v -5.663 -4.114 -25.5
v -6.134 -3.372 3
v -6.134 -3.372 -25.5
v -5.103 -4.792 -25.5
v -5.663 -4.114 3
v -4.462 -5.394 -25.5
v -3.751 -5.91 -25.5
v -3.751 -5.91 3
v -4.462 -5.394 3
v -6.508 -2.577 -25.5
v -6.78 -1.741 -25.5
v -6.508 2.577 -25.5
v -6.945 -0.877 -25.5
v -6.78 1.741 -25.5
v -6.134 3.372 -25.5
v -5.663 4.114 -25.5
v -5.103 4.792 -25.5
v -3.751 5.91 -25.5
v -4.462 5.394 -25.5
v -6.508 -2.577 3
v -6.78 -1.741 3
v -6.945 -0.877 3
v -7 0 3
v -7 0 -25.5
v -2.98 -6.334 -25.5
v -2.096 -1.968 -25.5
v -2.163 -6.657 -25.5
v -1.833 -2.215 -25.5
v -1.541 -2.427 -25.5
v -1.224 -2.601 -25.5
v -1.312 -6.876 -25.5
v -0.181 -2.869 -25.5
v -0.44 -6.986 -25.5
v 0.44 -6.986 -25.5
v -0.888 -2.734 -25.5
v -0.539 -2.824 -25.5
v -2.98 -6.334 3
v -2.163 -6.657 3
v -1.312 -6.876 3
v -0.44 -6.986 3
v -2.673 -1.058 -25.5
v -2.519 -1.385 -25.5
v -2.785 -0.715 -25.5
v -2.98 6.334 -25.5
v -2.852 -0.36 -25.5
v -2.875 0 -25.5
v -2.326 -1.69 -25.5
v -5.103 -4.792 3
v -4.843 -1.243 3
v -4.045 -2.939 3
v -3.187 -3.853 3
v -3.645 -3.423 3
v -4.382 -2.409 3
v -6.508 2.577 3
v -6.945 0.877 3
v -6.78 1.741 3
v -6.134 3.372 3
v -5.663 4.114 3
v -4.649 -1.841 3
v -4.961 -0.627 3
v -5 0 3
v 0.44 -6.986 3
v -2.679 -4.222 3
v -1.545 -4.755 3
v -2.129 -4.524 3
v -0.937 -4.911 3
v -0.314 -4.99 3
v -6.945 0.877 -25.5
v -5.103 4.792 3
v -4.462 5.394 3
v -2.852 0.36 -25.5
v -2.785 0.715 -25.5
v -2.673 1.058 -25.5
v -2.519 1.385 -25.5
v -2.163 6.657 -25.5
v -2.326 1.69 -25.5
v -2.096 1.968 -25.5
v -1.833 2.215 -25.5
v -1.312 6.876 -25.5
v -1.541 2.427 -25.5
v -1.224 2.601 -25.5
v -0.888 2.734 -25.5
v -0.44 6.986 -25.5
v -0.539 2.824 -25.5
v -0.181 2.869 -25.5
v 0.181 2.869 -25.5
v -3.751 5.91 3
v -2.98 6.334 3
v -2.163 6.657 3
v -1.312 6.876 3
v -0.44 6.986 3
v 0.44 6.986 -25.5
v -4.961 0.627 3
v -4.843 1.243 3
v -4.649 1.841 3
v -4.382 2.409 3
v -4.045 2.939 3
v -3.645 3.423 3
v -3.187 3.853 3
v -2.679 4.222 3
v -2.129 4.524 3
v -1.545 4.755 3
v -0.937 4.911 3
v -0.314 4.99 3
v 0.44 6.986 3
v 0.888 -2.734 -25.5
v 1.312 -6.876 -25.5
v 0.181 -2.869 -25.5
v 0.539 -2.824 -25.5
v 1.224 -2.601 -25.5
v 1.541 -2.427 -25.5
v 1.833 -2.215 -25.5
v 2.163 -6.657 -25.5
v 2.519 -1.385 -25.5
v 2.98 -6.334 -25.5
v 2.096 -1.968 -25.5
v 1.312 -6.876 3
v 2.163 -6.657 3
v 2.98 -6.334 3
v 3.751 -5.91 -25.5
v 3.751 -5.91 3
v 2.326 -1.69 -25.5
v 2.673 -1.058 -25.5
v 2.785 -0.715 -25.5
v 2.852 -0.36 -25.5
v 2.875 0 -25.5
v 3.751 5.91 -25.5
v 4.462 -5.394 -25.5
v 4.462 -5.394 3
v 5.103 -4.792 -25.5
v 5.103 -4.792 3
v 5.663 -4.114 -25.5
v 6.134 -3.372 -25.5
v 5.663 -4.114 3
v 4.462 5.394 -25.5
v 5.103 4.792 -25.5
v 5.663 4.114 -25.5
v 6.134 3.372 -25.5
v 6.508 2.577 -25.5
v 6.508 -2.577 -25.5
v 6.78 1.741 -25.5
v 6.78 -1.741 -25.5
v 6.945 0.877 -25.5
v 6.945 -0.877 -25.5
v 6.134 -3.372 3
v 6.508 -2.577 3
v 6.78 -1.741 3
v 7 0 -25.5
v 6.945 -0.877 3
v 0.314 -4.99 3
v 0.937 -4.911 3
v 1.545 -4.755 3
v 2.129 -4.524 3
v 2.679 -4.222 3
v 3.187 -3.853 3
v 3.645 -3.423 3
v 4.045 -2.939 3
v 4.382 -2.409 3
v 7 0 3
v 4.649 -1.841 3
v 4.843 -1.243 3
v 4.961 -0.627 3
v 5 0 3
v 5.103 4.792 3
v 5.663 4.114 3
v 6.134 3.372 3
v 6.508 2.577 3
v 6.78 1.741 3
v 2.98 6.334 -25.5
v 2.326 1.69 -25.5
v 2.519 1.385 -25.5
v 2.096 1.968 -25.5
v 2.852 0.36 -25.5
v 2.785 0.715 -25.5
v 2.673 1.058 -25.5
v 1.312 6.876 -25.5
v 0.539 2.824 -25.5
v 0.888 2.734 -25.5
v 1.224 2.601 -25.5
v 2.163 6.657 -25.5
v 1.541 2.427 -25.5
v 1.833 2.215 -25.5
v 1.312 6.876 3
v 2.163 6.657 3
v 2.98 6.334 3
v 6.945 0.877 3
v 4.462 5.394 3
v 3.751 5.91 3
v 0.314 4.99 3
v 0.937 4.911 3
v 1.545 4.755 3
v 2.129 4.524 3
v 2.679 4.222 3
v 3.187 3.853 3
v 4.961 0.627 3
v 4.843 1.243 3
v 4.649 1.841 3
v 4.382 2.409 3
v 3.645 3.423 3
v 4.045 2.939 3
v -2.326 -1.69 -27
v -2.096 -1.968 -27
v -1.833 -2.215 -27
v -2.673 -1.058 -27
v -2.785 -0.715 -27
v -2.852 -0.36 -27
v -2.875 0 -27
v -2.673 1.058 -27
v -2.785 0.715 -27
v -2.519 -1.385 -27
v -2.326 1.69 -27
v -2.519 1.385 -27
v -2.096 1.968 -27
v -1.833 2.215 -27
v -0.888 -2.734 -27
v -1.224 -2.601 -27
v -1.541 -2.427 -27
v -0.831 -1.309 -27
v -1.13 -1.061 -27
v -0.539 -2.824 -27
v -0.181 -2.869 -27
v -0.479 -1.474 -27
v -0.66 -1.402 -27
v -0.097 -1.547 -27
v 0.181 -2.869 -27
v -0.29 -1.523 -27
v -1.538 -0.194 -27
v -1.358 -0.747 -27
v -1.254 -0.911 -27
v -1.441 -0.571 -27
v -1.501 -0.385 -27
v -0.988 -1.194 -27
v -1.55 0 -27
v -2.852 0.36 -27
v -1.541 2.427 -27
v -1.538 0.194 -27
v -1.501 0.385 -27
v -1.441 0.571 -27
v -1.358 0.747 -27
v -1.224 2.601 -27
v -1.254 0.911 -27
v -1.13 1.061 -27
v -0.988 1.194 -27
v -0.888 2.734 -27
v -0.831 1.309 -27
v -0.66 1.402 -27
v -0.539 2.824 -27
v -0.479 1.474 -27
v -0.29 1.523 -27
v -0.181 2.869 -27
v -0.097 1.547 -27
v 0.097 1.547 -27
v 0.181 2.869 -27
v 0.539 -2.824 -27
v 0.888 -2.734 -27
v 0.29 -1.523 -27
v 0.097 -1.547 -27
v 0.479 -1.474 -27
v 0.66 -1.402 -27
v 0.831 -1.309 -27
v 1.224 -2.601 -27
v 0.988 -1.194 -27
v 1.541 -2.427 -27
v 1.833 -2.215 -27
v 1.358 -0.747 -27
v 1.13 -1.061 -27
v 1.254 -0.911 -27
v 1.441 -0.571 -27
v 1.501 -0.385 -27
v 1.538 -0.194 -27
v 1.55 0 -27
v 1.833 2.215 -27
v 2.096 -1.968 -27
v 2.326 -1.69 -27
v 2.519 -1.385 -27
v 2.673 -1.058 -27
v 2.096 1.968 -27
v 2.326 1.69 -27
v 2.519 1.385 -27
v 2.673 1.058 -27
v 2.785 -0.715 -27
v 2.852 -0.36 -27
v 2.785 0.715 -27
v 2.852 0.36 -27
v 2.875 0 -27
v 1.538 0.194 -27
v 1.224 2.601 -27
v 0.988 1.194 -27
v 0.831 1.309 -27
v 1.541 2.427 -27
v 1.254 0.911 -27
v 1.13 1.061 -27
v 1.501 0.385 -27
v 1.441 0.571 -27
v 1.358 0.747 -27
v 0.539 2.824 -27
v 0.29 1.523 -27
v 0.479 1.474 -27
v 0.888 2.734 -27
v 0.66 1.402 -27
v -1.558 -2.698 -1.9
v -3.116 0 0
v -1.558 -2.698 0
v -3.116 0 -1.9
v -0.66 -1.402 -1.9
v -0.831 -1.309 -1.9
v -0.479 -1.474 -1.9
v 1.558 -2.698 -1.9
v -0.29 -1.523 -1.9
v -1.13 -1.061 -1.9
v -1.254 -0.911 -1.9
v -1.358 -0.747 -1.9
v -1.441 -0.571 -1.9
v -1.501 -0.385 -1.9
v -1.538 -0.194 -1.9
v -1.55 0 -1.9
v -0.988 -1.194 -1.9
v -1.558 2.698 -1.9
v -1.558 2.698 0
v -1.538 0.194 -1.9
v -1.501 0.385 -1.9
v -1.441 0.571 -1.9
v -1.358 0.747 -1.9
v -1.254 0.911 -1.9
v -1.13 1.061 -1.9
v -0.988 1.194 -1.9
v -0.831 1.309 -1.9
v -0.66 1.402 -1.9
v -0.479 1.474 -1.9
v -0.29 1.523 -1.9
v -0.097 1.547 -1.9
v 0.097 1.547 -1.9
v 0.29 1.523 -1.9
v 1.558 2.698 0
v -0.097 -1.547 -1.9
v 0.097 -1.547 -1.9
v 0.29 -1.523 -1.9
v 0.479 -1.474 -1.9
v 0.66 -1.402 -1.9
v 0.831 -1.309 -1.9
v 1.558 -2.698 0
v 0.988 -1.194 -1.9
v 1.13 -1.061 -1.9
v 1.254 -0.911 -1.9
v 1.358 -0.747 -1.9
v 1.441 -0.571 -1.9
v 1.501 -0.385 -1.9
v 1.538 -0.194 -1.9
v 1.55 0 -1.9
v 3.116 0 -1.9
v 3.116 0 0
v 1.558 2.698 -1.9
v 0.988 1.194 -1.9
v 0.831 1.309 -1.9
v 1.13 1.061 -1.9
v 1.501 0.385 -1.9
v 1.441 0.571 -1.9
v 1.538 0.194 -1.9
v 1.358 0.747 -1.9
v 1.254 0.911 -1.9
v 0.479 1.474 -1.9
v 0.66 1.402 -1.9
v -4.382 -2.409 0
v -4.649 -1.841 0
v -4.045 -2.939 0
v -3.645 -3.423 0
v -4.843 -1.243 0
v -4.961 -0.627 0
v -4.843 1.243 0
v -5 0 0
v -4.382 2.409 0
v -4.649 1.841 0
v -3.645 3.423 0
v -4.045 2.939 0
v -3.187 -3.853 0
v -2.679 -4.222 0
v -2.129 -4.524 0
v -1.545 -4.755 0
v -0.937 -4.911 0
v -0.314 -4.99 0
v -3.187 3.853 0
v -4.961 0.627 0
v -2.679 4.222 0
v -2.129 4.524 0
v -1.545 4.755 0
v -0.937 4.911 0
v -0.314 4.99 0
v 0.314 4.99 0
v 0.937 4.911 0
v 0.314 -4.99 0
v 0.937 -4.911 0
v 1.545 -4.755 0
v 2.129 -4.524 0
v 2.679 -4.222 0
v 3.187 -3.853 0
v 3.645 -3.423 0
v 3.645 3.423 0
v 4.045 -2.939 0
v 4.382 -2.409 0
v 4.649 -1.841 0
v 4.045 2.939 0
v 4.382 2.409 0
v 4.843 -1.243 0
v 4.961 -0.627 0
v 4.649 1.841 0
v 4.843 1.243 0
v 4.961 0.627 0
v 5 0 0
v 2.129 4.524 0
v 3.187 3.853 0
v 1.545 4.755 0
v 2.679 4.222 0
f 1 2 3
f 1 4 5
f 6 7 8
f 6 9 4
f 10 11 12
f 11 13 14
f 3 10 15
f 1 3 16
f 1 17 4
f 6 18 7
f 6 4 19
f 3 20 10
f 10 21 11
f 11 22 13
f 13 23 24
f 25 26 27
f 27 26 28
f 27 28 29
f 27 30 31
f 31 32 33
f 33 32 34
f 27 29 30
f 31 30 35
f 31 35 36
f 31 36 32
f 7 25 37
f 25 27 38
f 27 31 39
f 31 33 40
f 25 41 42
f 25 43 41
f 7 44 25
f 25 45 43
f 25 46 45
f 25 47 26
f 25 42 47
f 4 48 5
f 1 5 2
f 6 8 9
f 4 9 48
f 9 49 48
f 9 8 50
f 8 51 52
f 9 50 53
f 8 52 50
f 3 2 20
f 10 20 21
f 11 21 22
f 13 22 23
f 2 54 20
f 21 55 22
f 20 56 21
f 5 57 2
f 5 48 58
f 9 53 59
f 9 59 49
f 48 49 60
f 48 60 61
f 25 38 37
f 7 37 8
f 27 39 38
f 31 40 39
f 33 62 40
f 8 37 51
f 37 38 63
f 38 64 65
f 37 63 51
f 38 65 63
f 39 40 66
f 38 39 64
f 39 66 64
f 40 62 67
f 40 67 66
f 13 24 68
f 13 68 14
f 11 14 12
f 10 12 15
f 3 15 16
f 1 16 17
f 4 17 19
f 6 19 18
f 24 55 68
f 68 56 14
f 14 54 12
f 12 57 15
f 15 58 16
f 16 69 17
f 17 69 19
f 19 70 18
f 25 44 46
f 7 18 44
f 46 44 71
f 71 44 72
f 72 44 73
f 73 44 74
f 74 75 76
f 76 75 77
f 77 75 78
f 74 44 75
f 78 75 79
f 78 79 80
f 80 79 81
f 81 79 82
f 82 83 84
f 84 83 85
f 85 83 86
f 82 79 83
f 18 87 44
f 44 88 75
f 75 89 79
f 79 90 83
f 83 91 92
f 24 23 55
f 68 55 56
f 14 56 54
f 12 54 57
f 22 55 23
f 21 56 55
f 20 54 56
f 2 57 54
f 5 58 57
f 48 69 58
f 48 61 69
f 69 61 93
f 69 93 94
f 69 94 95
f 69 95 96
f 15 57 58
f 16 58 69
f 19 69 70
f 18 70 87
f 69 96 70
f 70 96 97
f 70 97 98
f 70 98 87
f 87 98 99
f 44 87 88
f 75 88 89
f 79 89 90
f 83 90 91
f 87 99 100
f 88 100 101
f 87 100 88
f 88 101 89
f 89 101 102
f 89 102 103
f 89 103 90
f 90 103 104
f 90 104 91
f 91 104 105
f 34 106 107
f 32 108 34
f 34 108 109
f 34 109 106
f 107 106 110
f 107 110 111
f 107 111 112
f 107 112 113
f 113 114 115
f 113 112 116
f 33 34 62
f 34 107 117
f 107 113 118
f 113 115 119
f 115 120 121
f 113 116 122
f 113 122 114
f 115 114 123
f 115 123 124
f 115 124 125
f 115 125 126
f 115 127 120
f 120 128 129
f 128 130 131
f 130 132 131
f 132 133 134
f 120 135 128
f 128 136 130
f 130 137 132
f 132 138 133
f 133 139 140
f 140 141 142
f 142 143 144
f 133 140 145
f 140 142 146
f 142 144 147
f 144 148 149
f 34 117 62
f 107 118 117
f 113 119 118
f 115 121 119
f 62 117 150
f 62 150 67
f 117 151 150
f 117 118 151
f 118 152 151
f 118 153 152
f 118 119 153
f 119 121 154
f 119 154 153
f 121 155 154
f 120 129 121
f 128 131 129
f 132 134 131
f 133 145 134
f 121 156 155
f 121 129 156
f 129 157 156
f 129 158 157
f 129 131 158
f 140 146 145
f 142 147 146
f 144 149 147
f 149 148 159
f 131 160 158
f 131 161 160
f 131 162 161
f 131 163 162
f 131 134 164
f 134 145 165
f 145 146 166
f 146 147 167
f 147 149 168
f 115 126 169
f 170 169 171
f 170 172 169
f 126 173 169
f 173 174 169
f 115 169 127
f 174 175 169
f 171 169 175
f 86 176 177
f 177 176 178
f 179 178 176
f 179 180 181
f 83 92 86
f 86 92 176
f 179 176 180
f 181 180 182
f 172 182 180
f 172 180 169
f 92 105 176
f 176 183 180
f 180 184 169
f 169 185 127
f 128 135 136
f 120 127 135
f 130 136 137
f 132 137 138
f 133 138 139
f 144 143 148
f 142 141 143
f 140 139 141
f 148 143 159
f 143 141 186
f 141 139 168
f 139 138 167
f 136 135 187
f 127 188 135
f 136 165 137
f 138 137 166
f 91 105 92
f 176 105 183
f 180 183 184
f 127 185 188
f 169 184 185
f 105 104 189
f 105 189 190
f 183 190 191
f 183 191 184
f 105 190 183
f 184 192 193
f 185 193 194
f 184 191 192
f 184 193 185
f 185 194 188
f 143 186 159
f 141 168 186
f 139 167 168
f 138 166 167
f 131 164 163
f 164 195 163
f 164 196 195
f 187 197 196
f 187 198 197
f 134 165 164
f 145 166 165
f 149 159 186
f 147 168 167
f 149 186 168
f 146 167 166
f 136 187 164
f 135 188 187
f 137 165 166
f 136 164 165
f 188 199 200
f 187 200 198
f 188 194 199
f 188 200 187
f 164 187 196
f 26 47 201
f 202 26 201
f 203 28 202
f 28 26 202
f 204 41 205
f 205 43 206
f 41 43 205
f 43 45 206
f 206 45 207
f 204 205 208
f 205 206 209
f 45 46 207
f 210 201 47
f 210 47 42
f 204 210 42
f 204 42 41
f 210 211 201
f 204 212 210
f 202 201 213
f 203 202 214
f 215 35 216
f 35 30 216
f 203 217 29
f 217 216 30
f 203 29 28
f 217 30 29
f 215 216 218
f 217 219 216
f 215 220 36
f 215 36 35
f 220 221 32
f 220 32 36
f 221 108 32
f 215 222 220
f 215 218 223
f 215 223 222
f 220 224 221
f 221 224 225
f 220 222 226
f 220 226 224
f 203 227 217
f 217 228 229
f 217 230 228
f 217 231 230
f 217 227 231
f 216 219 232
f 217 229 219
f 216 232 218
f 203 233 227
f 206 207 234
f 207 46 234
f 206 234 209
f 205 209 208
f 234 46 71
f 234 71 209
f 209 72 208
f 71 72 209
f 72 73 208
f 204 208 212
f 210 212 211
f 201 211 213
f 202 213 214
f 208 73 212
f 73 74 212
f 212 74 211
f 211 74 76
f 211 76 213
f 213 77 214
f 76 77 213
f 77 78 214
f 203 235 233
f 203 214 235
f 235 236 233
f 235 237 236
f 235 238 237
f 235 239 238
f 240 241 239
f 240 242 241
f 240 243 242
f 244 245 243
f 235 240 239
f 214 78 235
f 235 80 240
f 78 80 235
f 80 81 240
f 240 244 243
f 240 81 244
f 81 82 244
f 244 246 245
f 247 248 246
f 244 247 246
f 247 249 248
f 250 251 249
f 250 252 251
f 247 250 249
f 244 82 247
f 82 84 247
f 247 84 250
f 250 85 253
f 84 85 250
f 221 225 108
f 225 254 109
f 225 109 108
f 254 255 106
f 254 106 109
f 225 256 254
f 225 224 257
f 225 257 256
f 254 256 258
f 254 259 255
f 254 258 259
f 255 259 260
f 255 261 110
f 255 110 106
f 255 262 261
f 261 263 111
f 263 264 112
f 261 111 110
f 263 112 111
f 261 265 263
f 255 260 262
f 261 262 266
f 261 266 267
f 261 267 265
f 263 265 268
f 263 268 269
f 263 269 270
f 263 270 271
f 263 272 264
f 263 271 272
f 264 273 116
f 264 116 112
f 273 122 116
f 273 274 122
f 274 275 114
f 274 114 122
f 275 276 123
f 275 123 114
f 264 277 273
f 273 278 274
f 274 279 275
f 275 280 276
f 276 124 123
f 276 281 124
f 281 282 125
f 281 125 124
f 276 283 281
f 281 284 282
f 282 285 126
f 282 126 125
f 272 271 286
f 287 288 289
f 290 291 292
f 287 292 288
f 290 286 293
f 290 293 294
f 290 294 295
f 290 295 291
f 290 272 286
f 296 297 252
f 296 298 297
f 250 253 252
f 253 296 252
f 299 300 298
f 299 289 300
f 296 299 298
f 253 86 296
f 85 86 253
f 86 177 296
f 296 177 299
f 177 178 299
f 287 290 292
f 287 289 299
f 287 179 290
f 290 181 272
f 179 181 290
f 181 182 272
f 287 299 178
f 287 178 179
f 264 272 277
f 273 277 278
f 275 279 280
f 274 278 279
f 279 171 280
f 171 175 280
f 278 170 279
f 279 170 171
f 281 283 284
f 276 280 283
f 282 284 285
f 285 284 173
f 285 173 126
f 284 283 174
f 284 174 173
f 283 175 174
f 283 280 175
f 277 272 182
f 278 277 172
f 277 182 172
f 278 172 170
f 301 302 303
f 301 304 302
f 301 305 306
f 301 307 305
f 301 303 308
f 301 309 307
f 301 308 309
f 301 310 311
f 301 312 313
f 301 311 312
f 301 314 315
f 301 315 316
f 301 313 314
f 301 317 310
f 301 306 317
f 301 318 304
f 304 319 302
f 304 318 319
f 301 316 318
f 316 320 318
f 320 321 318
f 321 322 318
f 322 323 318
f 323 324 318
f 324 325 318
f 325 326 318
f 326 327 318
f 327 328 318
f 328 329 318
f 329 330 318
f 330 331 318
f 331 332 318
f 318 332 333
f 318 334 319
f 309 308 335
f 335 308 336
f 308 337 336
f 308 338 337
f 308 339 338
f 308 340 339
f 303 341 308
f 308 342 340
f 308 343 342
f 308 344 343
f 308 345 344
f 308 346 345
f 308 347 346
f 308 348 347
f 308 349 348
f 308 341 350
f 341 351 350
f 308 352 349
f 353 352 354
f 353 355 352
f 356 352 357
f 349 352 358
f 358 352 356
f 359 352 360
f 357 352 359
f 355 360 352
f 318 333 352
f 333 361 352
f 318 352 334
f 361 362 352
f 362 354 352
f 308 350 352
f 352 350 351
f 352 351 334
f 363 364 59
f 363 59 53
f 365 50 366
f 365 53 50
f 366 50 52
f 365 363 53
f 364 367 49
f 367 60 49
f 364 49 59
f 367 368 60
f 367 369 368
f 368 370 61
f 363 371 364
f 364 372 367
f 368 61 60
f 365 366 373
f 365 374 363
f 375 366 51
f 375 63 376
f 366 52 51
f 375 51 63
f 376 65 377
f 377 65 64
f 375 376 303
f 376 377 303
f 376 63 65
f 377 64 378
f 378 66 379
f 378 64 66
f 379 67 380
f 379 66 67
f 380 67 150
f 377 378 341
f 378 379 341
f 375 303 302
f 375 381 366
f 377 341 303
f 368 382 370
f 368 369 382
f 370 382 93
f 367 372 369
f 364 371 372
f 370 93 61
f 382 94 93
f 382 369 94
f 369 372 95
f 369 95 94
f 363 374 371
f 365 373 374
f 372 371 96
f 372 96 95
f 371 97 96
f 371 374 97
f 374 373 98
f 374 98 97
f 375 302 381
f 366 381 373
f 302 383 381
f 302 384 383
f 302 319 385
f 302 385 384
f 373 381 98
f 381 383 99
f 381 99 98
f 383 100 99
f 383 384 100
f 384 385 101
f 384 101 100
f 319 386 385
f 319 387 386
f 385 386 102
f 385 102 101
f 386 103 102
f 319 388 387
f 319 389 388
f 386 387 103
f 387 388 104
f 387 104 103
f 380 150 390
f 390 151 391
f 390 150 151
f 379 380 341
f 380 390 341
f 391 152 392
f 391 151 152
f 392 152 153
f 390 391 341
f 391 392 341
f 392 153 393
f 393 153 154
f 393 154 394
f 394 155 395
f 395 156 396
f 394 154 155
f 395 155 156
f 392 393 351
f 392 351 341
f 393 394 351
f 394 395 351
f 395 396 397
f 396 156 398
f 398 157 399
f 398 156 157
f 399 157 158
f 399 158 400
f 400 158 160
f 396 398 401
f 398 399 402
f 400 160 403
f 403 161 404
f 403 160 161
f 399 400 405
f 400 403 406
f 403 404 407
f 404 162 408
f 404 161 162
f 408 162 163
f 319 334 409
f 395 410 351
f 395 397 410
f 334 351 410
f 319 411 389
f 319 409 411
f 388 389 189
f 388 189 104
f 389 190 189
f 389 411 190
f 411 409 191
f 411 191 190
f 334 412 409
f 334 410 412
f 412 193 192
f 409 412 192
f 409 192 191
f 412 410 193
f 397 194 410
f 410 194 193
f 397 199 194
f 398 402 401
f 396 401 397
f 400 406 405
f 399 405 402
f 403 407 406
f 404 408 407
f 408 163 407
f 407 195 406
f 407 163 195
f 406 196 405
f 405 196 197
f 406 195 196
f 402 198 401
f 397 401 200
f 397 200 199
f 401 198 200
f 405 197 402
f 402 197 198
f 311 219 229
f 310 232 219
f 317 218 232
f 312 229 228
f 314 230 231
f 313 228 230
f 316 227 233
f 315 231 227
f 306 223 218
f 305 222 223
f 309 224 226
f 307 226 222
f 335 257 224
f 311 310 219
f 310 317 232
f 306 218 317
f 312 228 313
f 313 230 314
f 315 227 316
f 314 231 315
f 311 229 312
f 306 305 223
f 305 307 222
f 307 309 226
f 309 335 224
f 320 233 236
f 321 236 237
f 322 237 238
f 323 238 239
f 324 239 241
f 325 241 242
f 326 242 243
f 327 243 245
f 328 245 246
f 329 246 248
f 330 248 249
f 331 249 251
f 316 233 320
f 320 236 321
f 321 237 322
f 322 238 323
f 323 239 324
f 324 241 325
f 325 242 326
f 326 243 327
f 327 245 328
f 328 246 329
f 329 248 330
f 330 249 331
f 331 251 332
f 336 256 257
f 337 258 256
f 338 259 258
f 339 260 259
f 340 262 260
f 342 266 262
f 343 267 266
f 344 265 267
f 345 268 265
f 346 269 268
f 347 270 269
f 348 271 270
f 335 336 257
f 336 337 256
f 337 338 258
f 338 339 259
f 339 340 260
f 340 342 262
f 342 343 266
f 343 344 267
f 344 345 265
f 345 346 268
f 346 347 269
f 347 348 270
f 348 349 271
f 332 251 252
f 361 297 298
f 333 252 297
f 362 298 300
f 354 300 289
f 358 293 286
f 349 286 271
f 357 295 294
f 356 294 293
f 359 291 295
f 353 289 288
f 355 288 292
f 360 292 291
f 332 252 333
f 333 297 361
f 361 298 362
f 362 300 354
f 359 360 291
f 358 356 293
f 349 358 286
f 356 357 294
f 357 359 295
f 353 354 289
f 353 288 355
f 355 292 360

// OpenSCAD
$fn = 50;

difference() {
	union() {
		translate(v = [0, 0, -25.5]) {
			cylinder(h = 28.5, r = 7.0);
		}
		#translate(v = [0, 0, -27.0]) {
			cylinder(h = 27, r = 2.875);
		}
	}
	union() {
		translate(v = [0, 0, 0]) {
			rotate(a = [0, 0, 0]) {
				difference() {
					union() {
						translate(v = [0, 0, -1.9]) {
							linear_extrude(height = 1.9) {
								polygon(points = [[3.1158, 0.0], [1.5579000000000005, 2.698361953111554], [-1.5578999999999994, 2.6983619531115544], [-3.1158, 3.815754496783323e-16], [-1.5579000000000014, -2.6983619531115535], [1.557899999999998, -2.6983619531115552]]);
							}
						}
					}
					union();
				}
			}
		}
		#cylinder(h = 3, r = 5.0);
		#translate(v = [0, 0, -100.0]) {
			cylinder(h = 200, r = 1.55);
		}
	}
}
